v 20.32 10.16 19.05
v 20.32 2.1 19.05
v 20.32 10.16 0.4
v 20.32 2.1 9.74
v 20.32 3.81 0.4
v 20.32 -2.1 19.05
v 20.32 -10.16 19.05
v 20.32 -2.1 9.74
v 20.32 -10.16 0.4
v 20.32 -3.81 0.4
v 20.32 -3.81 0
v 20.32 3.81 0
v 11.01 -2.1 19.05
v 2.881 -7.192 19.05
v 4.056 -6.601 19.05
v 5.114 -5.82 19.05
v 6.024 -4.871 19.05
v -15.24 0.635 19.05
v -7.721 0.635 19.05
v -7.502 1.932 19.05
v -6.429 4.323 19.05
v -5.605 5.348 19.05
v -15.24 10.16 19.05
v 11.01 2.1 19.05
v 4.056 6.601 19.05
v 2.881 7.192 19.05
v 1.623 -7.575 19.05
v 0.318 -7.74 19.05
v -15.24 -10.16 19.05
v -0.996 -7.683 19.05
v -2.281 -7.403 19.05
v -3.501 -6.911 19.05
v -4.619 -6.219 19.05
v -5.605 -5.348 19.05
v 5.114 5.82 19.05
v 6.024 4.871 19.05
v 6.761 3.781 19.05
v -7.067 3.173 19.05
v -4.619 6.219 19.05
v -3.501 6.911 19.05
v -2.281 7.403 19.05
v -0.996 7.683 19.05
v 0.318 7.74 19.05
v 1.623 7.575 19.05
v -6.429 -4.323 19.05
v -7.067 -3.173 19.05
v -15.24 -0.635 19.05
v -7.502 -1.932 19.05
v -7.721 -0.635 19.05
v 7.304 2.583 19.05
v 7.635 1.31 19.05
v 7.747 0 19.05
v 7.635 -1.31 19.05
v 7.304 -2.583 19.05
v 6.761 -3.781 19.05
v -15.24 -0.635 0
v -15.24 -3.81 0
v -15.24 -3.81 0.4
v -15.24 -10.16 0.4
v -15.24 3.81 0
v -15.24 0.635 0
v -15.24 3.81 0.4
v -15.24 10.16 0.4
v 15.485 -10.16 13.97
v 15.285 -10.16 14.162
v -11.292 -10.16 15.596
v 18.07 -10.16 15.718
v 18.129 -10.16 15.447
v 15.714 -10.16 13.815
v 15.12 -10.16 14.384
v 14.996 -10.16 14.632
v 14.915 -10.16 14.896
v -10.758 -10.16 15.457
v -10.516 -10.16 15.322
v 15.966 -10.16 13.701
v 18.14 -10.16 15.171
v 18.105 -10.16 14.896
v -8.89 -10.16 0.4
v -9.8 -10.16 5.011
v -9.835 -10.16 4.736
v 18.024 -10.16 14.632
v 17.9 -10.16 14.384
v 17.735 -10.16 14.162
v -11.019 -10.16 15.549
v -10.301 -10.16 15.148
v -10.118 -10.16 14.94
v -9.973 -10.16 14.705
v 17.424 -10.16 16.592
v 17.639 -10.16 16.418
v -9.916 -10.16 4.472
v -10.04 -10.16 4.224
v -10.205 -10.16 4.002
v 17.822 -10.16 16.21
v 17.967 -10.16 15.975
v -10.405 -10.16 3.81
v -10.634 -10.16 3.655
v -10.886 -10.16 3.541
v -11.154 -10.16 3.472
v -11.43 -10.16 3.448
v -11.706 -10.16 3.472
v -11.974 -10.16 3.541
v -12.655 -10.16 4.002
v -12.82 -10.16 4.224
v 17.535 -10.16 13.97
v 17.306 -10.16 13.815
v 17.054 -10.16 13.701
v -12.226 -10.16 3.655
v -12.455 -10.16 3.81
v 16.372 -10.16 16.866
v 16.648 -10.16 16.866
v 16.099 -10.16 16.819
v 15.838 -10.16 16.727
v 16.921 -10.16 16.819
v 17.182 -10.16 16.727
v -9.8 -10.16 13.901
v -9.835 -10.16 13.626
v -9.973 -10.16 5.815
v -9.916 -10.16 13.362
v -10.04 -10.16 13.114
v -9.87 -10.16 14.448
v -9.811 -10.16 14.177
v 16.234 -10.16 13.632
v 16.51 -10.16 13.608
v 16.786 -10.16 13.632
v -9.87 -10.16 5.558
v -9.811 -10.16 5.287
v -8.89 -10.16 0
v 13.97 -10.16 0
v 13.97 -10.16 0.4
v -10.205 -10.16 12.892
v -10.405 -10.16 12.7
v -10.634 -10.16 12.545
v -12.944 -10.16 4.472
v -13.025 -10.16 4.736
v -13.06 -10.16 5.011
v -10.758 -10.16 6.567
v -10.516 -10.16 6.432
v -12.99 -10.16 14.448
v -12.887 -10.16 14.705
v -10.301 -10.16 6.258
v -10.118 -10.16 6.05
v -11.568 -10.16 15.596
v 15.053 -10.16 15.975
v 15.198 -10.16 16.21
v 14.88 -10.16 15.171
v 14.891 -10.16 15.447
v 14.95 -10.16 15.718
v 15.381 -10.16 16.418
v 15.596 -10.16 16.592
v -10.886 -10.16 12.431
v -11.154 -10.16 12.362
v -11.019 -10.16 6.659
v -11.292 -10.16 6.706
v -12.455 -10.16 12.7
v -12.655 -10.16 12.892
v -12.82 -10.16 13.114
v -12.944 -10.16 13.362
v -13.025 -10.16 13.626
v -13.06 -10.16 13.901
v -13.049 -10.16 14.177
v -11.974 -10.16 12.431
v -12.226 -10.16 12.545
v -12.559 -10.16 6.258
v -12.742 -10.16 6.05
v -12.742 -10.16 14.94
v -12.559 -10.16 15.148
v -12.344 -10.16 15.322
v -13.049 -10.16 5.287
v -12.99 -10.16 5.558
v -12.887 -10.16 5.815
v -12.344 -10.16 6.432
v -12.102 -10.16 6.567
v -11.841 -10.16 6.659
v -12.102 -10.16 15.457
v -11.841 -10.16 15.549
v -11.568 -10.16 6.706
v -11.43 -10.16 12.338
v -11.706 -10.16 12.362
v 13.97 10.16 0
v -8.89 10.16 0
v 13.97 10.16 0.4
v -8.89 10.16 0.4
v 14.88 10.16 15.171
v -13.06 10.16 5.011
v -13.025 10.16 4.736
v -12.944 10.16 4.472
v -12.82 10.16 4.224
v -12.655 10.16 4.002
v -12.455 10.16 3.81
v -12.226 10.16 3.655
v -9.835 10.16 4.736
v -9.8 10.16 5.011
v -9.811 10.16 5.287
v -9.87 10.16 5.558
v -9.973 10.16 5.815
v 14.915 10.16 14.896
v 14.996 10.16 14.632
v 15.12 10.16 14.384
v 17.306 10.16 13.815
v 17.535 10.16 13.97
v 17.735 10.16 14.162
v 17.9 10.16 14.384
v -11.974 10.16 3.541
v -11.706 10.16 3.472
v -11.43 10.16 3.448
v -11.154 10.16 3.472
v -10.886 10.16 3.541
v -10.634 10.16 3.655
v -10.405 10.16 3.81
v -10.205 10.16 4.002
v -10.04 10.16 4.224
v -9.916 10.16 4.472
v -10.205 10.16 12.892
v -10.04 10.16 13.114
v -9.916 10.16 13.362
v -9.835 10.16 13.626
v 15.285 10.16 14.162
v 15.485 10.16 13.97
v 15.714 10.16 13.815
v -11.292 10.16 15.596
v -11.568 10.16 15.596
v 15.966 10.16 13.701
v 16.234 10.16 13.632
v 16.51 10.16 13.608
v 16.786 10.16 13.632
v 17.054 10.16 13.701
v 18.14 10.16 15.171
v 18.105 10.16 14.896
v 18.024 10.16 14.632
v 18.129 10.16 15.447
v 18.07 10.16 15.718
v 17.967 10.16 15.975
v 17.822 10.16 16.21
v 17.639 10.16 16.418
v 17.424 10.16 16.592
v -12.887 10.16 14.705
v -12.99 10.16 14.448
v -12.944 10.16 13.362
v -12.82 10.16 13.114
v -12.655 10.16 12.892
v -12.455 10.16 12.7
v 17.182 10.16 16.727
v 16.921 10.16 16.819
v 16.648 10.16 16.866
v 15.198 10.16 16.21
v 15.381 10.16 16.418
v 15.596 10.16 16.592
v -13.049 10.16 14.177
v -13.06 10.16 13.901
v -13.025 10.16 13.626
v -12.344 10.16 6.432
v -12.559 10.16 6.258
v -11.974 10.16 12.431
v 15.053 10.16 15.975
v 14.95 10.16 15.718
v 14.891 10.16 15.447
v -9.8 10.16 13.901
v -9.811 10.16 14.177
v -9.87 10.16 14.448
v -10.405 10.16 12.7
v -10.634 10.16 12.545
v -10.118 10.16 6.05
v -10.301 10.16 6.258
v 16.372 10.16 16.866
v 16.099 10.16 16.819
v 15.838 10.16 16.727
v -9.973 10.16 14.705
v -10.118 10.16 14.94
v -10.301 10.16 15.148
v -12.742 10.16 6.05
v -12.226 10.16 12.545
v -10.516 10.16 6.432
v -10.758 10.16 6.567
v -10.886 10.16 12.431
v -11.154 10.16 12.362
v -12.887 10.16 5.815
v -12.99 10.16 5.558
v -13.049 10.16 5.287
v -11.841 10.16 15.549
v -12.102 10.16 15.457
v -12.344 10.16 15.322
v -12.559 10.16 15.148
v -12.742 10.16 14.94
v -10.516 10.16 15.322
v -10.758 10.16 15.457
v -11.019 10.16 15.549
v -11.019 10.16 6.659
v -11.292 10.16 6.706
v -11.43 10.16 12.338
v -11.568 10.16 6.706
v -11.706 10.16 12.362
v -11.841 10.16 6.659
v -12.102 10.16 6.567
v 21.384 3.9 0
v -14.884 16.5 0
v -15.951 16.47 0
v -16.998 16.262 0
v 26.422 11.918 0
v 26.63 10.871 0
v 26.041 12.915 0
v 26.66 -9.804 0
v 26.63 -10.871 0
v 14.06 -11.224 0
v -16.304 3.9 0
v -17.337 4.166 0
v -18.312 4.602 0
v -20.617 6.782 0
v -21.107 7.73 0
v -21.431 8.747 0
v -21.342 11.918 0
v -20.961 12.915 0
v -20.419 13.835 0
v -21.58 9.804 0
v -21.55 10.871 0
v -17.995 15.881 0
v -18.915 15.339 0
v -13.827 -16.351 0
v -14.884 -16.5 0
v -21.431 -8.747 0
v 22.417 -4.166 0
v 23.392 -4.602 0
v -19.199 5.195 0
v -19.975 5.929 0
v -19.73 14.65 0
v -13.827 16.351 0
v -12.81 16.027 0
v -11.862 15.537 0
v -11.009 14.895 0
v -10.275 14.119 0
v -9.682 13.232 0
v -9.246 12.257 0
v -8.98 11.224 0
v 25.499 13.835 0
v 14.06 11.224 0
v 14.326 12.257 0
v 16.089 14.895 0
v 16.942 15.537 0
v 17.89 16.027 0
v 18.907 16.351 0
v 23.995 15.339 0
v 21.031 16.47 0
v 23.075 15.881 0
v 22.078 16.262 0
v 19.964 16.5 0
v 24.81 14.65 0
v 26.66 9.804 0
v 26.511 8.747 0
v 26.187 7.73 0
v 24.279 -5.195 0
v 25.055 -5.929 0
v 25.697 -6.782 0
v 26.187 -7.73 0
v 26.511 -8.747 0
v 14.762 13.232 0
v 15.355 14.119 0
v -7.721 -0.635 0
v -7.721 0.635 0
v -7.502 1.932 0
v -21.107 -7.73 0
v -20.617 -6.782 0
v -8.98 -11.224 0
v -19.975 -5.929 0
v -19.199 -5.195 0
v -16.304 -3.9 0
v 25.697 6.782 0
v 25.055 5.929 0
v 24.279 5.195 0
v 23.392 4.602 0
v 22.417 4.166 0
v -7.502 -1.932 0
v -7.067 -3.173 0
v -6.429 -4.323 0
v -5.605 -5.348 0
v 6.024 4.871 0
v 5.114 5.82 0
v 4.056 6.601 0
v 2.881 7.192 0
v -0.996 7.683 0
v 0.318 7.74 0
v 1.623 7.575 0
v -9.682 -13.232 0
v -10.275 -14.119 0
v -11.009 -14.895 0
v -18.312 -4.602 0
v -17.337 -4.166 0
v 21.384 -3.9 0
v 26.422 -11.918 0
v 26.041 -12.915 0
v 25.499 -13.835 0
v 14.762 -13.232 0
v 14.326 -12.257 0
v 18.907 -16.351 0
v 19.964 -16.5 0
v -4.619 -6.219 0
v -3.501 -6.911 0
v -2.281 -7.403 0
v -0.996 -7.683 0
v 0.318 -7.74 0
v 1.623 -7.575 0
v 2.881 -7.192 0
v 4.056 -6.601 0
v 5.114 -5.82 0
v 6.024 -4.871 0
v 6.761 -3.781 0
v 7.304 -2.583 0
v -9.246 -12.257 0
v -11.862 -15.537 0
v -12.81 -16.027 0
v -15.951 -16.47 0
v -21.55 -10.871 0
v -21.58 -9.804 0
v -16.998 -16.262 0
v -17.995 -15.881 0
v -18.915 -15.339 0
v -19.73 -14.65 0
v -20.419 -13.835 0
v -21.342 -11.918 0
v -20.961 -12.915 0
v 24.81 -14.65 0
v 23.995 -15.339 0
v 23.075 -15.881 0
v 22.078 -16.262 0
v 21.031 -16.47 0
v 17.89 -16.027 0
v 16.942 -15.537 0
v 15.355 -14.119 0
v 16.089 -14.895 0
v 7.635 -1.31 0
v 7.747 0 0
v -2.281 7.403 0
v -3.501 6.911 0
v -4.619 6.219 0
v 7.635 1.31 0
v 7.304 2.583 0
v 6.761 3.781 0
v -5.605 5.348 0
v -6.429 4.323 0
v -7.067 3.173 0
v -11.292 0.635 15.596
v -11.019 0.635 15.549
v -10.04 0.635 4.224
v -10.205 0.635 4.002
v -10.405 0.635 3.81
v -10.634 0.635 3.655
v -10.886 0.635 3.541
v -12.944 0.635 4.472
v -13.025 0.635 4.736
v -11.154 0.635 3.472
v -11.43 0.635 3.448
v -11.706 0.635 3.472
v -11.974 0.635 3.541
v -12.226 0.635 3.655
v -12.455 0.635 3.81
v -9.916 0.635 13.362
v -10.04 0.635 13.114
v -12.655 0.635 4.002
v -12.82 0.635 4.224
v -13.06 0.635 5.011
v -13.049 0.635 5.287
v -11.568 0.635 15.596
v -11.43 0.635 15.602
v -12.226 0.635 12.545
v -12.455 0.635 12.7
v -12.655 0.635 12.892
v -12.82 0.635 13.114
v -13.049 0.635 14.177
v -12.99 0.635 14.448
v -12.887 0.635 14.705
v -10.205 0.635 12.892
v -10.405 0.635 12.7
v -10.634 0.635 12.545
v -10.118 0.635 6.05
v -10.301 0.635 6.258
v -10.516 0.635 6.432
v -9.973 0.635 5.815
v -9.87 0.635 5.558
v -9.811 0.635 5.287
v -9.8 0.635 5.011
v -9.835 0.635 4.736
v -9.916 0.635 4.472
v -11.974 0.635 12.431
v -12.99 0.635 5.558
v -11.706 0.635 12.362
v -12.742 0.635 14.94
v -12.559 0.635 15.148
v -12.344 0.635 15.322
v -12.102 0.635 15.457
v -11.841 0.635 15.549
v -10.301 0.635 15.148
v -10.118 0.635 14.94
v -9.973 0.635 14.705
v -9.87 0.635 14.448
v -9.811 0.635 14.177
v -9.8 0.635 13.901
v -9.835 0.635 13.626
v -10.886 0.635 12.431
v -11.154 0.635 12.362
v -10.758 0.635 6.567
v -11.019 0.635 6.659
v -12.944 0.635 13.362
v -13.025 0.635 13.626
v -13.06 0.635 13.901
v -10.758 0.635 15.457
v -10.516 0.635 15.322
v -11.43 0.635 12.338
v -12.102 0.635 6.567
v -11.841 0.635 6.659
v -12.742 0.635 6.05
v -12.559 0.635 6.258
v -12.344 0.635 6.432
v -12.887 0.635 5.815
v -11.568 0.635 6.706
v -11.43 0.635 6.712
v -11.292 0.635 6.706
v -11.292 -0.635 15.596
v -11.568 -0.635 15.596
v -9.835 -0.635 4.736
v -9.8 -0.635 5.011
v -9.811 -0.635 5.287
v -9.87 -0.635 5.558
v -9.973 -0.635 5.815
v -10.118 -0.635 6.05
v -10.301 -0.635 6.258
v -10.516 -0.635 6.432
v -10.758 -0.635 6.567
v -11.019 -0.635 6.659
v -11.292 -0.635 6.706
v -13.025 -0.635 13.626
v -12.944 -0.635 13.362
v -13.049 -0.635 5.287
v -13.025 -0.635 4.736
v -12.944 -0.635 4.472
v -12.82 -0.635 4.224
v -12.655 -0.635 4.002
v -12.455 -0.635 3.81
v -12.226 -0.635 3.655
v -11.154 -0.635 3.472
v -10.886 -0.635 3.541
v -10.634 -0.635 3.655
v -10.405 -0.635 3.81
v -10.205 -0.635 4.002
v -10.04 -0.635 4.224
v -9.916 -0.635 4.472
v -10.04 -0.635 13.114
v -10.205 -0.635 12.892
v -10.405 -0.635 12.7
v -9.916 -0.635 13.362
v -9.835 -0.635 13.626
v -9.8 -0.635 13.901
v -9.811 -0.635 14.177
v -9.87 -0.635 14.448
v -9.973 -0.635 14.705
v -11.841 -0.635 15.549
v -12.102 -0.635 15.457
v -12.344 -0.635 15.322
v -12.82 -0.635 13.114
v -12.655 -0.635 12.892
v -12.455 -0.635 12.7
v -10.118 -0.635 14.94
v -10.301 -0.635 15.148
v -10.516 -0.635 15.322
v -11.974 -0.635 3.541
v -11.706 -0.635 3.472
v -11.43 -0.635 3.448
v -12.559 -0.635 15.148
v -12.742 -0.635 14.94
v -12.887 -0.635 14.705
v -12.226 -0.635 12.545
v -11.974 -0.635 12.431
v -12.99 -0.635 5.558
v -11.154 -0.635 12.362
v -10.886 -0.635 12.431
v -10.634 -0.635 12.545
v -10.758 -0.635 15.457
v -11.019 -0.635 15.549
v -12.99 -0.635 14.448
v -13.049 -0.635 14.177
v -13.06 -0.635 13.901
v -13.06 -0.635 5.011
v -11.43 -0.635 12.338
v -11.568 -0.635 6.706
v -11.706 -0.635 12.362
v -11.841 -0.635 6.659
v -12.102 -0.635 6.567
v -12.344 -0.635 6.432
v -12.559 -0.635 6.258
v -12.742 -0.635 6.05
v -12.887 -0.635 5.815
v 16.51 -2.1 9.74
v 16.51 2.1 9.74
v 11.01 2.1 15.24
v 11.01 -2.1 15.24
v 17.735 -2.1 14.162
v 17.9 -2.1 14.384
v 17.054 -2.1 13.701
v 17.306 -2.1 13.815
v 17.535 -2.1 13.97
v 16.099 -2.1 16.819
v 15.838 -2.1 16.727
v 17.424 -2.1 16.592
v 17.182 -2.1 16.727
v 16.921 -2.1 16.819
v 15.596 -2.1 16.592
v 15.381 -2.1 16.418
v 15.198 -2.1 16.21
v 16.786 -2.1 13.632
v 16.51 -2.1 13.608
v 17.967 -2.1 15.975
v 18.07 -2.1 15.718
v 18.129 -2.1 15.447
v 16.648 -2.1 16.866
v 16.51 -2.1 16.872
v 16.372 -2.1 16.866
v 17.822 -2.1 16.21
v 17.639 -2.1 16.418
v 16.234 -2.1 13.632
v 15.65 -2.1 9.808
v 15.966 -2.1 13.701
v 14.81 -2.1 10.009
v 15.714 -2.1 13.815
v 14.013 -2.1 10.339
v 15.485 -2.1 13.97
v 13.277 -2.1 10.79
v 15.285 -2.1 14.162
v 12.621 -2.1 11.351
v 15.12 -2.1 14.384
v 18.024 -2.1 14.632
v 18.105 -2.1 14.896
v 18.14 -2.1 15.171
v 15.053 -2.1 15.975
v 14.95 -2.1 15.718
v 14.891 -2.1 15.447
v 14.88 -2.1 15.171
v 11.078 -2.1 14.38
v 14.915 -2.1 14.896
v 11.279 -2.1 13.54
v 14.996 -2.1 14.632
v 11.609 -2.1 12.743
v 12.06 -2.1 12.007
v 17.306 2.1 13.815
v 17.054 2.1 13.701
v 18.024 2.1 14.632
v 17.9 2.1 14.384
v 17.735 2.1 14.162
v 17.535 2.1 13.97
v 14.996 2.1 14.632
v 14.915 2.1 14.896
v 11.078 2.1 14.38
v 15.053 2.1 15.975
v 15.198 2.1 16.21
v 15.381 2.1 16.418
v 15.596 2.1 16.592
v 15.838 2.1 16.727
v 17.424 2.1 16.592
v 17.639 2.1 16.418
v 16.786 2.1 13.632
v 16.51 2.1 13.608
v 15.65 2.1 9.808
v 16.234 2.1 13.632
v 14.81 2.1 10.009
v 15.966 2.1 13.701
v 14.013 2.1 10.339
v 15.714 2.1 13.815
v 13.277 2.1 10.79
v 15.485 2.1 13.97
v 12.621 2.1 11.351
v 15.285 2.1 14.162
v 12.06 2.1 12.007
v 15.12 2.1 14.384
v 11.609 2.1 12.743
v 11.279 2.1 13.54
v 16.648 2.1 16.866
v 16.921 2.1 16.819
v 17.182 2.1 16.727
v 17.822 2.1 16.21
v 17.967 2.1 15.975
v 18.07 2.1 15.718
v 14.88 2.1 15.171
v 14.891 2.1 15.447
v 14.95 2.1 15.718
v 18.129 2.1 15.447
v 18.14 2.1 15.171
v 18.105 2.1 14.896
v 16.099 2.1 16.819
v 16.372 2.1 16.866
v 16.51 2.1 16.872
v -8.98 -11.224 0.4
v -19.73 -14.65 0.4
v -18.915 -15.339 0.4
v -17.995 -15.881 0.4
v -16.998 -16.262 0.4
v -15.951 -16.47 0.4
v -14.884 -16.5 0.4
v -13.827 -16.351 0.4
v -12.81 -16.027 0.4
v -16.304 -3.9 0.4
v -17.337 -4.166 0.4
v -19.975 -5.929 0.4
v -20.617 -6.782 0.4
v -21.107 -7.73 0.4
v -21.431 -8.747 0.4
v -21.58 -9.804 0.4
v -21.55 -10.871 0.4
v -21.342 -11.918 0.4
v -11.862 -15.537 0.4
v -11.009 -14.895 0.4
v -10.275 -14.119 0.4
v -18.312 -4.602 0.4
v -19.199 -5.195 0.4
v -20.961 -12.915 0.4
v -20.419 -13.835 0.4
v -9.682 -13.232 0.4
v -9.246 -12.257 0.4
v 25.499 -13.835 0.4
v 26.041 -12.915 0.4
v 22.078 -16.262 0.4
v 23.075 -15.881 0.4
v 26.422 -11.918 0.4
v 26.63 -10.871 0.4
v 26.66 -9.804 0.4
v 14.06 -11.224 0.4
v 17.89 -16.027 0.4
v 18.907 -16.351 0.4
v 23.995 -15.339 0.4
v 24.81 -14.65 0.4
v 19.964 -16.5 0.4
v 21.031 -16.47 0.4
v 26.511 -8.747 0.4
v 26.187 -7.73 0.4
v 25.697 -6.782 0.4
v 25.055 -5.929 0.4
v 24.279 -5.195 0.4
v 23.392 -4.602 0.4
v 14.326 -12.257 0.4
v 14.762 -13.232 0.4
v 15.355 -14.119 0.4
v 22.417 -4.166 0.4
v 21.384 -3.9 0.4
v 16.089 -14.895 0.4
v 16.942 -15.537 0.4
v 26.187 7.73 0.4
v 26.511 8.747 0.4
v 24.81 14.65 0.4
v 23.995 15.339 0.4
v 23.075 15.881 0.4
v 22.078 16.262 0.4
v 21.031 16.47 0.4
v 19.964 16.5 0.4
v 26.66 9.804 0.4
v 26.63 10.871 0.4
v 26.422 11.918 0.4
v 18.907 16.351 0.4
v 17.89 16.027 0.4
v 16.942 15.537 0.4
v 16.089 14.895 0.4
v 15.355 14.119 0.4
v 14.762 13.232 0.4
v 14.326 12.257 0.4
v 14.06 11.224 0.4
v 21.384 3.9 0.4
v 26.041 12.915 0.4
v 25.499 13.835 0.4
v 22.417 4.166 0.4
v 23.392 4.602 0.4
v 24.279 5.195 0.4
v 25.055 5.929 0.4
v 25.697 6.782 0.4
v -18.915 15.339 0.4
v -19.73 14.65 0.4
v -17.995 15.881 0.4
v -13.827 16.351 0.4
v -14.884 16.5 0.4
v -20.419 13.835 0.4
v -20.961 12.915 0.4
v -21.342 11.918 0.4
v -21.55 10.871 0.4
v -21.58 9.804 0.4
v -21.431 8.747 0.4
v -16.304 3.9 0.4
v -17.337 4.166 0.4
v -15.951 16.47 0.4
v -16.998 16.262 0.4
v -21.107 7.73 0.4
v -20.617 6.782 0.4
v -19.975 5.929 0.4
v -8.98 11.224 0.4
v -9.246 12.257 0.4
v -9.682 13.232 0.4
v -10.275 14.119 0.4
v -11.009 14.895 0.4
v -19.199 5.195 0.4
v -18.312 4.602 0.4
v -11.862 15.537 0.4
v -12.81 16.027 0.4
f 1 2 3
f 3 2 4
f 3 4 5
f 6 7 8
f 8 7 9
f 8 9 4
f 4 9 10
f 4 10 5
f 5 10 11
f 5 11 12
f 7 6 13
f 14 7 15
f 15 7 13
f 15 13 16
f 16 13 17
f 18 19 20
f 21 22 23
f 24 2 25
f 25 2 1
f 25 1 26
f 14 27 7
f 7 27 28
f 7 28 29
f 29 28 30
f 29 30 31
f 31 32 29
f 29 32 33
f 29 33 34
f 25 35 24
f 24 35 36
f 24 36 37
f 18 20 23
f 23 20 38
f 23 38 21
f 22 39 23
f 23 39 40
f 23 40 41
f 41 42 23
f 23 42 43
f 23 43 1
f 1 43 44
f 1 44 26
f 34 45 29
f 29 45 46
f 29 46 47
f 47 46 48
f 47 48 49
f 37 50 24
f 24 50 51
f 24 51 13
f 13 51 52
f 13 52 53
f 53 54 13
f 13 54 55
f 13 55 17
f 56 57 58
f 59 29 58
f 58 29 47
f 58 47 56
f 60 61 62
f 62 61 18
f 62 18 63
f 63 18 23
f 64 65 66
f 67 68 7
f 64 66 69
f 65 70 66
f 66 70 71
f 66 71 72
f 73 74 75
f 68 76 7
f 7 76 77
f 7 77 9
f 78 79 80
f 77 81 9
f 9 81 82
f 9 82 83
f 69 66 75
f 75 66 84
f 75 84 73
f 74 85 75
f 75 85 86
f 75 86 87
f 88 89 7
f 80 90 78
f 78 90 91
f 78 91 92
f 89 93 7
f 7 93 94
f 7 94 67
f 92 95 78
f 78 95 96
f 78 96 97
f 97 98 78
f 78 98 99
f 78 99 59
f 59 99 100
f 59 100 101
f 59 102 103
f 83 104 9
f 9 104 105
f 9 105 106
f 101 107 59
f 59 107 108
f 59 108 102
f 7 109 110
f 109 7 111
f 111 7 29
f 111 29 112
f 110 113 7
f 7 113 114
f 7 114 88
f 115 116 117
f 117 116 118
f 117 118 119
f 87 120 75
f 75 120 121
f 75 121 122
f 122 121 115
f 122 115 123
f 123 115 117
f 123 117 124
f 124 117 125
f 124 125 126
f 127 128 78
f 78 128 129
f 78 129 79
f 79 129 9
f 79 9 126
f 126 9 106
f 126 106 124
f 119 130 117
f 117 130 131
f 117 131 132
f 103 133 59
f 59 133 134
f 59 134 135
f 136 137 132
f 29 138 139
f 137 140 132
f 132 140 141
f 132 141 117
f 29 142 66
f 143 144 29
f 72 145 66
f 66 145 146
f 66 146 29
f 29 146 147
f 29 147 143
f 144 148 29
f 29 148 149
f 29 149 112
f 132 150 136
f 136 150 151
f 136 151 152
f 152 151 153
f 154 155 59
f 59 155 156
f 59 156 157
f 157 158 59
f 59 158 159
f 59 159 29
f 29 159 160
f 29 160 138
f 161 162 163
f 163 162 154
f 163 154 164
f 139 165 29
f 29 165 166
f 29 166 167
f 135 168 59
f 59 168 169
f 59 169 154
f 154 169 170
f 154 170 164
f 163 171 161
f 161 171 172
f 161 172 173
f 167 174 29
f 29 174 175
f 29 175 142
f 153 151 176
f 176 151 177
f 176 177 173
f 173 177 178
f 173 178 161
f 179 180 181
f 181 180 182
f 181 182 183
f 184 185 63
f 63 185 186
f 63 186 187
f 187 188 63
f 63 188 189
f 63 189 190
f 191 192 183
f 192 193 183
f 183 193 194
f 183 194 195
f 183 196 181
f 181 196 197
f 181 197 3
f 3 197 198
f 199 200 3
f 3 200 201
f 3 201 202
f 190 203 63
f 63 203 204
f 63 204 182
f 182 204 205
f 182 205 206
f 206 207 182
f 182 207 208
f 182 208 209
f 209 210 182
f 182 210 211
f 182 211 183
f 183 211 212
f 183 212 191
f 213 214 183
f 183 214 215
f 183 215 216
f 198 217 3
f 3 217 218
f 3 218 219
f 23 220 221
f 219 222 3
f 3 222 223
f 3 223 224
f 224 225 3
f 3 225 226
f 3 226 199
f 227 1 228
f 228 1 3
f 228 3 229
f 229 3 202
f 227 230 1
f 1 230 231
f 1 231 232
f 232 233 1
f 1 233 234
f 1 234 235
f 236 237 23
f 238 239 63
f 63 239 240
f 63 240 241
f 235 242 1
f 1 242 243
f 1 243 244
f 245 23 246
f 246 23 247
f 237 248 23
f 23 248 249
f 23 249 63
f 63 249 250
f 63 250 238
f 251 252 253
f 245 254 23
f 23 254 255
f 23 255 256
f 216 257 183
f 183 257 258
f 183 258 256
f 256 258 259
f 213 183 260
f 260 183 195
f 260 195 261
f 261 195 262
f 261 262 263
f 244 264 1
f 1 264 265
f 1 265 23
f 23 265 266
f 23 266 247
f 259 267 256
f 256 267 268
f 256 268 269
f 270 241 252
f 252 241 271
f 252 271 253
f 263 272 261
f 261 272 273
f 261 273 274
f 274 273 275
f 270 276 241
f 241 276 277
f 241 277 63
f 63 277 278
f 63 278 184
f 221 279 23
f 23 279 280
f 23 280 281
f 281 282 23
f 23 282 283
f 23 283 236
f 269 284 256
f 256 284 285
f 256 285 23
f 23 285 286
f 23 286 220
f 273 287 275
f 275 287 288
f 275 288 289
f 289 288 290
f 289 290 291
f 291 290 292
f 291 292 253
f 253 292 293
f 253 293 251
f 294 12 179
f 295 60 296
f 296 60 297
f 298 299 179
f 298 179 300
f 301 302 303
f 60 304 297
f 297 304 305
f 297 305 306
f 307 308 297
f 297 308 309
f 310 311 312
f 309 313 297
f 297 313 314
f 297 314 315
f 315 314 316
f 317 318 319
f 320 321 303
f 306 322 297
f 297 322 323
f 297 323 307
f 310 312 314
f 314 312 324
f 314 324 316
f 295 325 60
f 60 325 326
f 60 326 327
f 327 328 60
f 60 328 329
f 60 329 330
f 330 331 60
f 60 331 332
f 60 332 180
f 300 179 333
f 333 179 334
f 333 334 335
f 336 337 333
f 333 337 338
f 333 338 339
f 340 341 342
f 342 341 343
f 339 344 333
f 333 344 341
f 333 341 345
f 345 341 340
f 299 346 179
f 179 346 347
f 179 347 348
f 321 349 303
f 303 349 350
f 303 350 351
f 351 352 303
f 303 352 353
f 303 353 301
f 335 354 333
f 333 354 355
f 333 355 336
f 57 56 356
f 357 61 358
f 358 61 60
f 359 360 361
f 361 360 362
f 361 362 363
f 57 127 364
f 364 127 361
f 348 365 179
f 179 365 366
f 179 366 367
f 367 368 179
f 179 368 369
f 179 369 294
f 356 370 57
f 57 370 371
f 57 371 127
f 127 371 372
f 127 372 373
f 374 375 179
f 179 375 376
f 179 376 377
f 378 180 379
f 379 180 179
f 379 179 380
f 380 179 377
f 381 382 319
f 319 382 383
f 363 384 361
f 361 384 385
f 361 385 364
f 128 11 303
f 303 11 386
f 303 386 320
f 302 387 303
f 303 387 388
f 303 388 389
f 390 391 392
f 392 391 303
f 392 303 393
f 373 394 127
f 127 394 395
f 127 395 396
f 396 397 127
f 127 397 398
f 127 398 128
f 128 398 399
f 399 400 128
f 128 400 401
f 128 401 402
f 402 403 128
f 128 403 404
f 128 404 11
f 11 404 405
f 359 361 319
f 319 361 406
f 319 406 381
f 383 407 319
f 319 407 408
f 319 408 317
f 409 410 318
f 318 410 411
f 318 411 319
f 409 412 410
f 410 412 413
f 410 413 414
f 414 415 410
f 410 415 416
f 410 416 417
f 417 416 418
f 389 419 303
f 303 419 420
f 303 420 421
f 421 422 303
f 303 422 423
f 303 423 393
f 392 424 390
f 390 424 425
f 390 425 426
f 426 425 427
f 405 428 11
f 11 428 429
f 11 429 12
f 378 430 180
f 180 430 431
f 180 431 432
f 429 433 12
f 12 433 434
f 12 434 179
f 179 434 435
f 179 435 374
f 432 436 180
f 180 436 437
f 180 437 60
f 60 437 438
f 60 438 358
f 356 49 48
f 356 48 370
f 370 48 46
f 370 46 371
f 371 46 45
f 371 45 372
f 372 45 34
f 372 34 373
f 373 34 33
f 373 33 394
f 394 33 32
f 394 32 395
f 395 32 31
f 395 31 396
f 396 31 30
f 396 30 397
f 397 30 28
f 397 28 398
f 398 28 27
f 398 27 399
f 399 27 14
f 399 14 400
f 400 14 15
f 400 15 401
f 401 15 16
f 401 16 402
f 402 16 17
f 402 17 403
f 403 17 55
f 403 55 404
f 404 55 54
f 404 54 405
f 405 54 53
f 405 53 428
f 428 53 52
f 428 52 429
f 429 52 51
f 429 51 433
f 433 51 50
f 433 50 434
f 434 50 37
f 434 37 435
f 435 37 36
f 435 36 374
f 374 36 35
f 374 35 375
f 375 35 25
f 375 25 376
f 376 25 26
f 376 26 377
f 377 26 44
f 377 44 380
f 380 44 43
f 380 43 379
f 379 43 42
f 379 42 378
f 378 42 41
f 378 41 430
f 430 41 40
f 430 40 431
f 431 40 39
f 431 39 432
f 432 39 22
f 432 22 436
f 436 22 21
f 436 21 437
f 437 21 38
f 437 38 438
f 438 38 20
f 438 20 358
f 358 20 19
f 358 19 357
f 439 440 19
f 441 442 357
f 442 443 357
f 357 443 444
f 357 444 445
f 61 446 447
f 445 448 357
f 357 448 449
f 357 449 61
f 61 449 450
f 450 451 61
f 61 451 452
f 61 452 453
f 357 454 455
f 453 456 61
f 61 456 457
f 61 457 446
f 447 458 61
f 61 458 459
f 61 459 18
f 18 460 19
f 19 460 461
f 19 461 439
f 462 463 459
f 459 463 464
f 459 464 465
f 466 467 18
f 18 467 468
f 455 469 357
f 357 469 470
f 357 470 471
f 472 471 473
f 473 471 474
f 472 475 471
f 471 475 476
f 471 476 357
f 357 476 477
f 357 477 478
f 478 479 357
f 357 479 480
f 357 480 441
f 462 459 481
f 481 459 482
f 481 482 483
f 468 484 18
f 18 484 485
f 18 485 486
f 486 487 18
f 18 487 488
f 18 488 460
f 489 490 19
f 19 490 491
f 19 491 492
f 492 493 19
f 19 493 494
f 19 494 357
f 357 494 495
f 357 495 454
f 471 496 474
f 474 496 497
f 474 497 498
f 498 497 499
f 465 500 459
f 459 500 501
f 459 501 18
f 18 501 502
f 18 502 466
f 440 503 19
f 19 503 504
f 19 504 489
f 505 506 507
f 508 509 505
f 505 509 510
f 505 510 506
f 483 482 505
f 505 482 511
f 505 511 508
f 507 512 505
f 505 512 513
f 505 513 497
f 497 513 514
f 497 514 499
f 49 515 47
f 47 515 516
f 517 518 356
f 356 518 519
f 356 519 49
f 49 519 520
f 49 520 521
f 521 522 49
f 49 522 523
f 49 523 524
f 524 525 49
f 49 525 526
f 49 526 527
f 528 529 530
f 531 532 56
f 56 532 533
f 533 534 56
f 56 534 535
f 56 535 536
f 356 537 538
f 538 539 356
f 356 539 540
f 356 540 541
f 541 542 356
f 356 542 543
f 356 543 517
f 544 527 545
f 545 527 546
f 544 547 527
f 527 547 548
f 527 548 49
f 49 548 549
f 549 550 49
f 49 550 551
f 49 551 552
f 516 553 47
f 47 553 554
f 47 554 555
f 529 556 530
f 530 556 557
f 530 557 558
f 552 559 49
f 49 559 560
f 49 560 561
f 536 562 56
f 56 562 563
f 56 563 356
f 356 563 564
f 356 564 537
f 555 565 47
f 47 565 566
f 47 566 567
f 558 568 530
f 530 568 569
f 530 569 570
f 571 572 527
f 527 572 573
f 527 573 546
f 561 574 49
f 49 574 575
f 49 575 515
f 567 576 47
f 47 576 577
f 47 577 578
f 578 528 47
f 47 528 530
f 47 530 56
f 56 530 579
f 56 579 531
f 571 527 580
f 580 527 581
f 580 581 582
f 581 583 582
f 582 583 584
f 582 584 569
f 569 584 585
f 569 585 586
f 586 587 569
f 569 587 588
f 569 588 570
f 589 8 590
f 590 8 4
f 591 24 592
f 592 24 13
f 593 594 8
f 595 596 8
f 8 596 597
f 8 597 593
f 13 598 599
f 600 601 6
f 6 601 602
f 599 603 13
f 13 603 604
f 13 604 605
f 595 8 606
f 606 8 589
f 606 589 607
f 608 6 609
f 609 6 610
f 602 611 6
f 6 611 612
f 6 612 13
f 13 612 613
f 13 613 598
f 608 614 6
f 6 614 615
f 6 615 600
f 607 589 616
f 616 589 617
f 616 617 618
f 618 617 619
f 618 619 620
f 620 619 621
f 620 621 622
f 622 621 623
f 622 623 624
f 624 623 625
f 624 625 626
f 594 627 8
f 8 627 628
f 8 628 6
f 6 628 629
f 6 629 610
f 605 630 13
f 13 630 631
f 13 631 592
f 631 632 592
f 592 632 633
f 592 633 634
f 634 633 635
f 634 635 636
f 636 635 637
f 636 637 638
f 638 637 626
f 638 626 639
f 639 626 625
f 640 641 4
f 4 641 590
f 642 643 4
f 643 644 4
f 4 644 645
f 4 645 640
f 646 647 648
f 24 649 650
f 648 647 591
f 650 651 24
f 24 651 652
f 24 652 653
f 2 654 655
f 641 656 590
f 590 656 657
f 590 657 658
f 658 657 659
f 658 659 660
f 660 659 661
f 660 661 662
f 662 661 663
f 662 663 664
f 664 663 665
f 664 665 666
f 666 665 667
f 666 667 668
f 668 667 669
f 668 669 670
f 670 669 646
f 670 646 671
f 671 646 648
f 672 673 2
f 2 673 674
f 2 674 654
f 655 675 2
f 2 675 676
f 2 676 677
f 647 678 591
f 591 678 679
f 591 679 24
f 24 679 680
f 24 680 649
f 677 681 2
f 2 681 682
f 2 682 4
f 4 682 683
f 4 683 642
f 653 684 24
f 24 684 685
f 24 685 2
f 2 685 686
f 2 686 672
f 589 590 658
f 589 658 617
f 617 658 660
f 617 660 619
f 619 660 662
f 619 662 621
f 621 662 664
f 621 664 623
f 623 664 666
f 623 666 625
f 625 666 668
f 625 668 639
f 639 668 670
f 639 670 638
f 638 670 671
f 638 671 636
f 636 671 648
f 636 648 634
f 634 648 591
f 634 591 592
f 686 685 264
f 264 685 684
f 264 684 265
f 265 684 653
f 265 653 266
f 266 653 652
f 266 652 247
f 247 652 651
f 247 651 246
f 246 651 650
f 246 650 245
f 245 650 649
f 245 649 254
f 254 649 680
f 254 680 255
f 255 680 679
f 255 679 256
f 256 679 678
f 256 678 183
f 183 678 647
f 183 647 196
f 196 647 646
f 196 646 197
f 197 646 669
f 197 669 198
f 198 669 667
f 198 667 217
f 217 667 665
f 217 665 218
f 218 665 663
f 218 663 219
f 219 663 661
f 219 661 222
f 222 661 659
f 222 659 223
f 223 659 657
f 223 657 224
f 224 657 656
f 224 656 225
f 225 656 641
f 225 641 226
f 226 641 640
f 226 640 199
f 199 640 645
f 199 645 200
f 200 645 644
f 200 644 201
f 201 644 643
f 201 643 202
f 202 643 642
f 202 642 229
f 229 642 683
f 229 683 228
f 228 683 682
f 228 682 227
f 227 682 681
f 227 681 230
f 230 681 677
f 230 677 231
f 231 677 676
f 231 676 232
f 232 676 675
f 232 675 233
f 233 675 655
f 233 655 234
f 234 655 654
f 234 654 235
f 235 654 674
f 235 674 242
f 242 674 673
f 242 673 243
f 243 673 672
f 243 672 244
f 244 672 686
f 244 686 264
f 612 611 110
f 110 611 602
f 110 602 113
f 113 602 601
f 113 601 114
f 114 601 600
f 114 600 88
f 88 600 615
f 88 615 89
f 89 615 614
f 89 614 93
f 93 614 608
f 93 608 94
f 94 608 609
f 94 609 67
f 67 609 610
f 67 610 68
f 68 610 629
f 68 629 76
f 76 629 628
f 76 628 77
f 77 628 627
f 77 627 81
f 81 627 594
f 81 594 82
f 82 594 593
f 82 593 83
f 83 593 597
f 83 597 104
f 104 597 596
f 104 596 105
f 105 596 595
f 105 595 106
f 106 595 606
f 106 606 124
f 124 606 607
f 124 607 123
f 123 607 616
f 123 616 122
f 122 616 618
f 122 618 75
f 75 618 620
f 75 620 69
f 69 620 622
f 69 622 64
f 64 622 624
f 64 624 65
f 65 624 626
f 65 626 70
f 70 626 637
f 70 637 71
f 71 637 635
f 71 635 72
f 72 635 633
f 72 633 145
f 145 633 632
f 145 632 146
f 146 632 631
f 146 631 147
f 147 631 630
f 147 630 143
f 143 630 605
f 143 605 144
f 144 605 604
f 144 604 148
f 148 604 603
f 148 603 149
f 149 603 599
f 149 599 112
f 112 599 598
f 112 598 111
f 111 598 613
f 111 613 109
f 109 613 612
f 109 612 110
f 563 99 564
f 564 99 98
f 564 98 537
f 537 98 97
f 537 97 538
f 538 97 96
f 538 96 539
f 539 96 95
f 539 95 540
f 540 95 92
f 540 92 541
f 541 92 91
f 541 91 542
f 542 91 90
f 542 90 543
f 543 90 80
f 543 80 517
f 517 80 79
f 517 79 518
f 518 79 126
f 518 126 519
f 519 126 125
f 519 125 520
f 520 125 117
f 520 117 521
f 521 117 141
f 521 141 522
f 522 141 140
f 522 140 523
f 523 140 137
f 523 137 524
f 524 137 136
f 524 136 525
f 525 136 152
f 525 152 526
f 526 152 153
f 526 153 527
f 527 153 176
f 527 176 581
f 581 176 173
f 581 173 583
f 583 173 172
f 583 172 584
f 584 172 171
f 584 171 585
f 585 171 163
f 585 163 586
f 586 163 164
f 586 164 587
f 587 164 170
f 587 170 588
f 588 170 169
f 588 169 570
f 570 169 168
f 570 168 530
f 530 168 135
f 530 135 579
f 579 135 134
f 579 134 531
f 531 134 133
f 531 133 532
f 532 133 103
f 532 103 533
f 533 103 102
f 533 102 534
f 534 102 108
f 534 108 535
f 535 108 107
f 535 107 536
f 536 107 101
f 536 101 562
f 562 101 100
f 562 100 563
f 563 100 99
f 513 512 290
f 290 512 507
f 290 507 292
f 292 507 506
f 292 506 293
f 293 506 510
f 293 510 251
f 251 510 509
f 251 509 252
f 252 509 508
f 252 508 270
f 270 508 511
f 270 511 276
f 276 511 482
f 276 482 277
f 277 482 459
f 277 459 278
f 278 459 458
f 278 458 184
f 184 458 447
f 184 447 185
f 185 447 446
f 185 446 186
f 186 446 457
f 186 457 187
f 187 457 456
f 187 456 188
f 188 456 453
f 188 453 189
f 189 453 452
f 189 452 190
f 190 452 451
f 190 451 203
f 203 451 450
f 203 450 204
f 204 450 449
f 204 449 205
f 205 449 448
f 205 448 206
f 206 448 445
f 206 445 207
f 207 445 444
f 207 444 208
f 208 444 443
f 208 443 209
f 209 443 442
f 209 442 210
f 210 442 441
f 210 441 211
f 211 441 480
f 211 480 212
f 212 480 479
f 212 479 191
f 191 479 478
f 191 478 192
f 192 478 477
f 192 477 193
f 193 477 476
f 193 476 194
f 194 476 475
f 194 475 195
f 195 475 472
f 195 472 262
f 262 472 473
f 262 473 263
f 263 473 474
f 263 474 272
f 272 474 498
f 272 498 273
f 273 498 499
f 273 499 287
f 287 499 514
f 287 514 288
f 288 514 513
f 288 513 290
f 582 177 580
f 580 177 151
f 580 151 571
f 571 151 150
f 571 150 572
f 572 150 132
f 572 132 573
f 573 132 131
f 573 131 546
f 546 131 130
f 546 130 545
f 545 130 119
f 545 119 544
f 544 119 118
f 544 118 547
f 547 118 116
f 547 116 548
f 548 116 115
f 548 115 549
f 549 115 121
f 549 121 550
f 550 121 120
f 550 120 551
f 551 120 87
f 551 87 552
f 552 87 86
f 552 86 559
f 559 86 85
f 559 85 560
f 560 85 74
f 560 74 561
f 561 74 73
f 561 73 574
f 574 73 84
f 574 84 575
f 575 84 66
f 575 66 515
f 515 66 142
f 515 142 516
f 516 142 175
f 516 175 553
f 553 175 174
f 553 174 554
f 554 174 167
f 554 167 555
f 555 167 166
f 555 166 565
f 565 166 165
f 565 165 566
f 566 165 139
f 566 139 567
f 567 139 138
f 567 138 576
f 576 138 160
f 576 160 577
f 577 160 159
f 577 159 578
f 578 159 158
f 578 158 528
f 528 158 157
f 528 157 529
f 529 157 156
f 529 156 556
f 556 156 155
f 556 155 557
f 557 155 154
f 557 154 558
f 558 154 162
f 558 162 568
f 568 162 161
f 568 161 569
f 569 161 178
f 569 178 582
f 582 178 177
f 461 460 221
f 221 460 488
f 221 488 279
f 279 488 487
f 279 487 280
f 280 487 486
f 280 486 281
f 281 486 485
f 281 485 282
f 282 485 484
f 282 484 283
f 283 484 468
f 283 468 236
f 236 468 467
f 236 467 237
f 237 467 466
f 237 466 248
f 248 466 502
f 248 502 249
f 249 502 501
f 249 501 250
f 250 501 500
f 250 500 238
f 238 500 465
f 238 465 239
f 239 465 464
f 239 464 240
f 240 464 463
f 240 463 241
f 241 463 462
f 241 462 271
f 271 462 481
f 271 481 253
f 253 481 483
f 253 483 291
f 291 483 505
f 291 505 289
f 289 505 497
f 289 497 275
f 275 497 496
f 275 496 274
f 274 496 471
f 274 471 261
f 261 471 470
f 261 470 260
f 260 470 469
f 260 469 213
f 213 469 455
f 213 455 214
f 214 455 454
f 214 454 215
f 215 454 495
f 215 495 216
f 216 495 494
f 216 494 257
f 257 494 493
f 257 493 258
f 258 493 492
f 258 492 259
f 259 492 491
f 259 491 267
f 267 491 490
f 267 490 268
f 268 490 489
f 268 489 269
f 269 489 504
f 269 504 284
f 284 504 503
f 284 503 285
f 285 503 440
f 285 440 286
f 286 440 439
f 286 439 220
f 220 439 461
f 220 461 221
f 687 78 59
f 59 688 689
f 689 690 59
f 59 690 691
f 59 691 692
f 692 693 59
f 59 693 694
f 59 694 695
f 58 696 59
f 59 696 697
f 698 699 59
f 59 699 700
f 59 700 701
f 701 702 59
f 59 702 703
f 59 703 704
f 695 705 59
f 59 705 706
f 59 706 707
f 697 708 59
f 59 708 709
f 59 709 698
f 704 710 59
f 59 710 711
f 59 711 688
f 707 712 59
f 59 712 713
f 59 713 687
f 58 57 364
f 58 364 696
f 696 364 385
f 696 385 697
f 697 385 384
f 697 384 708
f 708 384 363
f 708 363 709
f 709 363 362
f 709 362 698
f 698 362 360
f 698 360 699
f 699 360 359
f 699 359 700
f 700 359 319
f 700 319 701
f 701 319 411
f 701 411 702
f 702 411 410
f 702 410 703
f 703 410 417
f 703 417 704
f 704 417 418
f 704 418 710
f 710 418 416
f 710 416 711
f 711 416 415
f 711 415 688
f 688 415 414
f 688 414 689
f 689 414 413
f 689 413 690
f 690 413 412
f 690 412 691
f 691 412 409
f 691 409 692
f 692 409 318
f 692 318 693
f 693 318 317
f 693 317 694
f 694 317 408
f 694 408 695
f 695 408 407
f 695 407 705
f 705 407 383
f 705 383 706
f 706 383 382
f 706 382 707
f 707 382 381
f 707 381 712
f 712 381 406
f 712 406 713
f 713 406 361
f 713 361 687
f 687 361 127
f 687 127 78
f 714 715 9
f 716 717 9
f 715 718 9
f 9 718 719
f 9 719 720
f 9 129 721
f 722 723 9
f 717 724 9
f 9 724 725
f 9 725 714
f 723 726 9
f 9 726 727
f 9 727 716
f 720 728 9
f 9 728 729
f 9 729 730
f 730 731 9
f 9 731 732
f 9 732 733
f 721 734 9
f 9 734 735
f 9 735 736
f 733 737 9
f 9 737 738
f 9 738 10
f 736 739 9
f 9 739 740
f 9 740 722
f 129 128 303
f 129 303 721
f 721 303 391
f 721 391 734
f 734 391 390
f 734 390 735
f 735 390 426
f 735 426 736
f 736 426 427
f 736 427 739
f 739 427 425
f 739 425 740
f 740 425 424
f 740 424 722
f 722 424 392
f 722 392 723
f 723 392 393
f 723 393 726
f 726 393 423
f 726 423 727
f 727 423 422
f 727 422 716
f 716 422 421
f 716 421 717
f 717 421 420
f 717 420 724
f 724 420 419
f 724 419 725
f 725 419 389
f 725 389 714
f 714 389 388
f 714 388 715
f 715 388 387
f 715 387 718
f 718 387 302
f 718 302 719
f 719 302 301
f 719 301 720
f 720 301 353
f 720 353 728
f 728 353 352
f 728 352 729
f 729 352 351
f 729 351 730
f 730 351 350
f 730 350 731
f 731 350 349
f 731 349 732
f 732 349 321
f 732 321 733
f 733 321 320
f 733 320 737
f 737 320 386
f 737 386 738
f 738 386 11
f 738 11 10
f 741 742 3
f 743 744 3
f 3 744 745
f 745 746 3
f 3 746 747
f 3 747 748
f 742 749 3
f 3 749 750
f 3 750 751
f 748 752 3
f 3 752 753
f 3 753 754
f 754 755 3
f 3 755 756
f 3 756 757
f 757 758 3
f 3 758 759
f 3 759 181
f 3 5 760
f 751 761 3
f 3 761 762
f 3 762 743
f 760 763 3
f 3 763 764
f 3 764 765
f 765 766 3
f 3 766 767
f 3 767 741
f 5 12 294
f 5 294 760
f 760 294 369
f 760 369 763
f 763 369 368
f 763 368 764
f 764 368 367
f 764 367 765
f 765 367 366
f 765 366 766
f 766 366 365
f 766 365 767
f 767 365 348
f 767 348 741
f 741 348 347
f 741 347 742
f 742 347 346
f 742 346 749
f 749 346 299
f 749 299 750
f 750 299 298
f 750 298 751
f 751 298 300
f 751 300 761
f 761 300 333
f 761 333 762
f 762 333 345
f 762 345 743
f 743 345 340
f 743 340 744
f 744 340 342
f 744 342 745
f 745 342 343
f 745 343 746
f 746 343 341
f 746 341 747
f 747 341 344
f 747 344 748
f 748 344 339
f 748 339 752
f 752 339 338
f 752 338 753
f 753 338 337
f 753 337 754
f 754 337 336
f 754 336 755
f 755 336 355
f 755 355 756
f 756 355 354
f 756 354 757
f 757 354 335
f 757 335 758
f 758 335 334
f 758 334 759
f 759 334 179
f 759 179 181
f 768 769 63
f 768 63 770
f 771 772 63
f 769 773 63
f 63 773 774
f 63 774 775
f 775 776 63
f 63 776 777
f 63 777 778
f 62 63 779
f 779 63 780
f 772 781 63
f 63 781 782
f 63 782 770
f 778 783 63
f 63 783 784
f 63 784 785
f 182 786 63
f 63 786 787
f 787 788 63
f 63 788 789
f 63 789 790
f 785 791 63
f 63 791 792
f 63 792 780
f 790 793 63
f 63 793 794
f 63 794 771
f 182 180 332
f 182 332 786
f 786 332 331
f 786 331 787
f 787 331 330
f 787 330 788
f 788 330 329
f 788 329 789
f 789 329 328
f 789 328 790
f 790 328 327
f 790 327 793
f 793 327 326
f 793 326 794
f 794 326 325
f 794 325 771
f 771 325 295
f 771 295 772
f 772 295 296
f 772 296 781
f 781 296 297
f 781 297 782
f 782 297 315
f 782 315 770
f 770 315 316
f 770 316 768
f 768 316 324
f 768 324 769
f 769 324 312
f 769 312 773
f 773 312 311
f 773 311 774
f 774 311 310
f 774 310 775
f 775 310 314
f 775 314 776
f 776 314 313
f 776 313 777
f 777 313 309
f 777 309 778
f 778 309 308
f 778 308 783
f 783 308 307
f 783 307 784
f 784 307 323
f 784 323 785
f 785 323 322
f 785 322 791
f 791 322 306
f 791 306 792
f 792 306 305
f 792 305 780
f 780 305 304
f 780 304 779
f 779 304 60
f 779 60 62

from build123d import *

# Parameters (mm, degrees)
SKETCH1_W             = 35.56
SKETCH1_H             = 20.32
BOSS_EXTRUDE1_DEPTH   = 19.05
SKETCH2_R             = 7.747
CUT_EXTRUDE1_DEPTH    = 20.05
SKETCH3_W             = 7.5451369
SKETCH3_H             = 1.27
CUT_EXTRUDE2_DEPTH    = 20.05
CUT_EXTRUDE4_DEPTH    = 2.1
F_4_CLEARANCE_HOLE1_D = 3.2639
SKETCH12_R            = 6.35
BOSS_EXTRUDE2_DEPTH   = 0.4


with BuildPart() as part:
    # Sketch1 → Boss-Extrude1 (new body)
    with BuildSketch(Plane.XY):
        with Locations((2.54, 0)):
            Rectangle(SKETCH1_W, SKETCH1_H)
    extrude(amount=BOSS_EXTRUDE1_DEPTH)

    # Sketch2 → Cut-Extrude1 (cut, through all)
    with BuildSketch(Plane.XY.offset(19.05)):
        Circle(SKETCH2_R)
    extrude(amount=-CUT_EXTRUDE1_DEPTH, mode=Mode.SUBTRACT)

    # Sketch3 → Cut-Extrude2 (cut, through all)
    with BuildSketch(Plane.XY.offset(19.05)):
        with Locations((-11.4935, 0)):
            Rectangle(SKETCH3_W, SKETCH3_H)
    extrude(amount=-CUT_EXTRUDE2_DEPTH, mode=Mode.SUBTRACT)

    # Sketch9 → Cut-Extrude4 (cut, symmetric)
    with BuildSketch(Plane(origin=(0, 0, 0), x_dir=(1, 0, 0), z_dir=(0, 1, 0))):
        with BuildLine():
            Line((11.01, -15.24), (11.01, -20.74))
            Line((11.01, -20.74), (22.01, -20.74))
            Line((22.01, -20.74), (22.01, -9.74))
            Line((22.01, -9.74), (16.51, -9.74))
            ThreePointArc((16.51, -9.74), (12.620912703, -11.350912703), (11.01, -15.24))
        make_face()
    extrude(amount=CUT_EXTRUDE4_DEPTH, both=True, mode=Mode.SUBTRACT)

    # #4 Clearance Hole1 (through all)
    with Locations(Plane(origin=(0, -10.16, 0), x_dir=(-1, 0, 0), z_dir=(0, -1, 0))):
        with Locations((11.43, -13.97), (11.43, -5.08), (-16.51, -15.24)):
            Hole(F_4_CLEARANCE_HOLE1_D / 2)

    # Sketch12 → Boss-Extrude2 (add)
    with BuildSketch(Plane(origin=(0, 0, 0), x_dir=(-1, 0, 0), z_dir=(0, 0, -1))):
        with Locations((15.24, -10.16)):
            Circle(SKETCH12_R)
        with Locations((-20.32, -10.16)):
            Circle(SKETCH12_R)
        with Locations((-20.32, 10.16)):
            Circle(SKETCH12_R)
        with Locations((15.24, 10.16)):
            Circle(SKETCH12_R)
    extrude(amount=-BOSS_EXTRUDE2_DEPTH)


solid = part.part
